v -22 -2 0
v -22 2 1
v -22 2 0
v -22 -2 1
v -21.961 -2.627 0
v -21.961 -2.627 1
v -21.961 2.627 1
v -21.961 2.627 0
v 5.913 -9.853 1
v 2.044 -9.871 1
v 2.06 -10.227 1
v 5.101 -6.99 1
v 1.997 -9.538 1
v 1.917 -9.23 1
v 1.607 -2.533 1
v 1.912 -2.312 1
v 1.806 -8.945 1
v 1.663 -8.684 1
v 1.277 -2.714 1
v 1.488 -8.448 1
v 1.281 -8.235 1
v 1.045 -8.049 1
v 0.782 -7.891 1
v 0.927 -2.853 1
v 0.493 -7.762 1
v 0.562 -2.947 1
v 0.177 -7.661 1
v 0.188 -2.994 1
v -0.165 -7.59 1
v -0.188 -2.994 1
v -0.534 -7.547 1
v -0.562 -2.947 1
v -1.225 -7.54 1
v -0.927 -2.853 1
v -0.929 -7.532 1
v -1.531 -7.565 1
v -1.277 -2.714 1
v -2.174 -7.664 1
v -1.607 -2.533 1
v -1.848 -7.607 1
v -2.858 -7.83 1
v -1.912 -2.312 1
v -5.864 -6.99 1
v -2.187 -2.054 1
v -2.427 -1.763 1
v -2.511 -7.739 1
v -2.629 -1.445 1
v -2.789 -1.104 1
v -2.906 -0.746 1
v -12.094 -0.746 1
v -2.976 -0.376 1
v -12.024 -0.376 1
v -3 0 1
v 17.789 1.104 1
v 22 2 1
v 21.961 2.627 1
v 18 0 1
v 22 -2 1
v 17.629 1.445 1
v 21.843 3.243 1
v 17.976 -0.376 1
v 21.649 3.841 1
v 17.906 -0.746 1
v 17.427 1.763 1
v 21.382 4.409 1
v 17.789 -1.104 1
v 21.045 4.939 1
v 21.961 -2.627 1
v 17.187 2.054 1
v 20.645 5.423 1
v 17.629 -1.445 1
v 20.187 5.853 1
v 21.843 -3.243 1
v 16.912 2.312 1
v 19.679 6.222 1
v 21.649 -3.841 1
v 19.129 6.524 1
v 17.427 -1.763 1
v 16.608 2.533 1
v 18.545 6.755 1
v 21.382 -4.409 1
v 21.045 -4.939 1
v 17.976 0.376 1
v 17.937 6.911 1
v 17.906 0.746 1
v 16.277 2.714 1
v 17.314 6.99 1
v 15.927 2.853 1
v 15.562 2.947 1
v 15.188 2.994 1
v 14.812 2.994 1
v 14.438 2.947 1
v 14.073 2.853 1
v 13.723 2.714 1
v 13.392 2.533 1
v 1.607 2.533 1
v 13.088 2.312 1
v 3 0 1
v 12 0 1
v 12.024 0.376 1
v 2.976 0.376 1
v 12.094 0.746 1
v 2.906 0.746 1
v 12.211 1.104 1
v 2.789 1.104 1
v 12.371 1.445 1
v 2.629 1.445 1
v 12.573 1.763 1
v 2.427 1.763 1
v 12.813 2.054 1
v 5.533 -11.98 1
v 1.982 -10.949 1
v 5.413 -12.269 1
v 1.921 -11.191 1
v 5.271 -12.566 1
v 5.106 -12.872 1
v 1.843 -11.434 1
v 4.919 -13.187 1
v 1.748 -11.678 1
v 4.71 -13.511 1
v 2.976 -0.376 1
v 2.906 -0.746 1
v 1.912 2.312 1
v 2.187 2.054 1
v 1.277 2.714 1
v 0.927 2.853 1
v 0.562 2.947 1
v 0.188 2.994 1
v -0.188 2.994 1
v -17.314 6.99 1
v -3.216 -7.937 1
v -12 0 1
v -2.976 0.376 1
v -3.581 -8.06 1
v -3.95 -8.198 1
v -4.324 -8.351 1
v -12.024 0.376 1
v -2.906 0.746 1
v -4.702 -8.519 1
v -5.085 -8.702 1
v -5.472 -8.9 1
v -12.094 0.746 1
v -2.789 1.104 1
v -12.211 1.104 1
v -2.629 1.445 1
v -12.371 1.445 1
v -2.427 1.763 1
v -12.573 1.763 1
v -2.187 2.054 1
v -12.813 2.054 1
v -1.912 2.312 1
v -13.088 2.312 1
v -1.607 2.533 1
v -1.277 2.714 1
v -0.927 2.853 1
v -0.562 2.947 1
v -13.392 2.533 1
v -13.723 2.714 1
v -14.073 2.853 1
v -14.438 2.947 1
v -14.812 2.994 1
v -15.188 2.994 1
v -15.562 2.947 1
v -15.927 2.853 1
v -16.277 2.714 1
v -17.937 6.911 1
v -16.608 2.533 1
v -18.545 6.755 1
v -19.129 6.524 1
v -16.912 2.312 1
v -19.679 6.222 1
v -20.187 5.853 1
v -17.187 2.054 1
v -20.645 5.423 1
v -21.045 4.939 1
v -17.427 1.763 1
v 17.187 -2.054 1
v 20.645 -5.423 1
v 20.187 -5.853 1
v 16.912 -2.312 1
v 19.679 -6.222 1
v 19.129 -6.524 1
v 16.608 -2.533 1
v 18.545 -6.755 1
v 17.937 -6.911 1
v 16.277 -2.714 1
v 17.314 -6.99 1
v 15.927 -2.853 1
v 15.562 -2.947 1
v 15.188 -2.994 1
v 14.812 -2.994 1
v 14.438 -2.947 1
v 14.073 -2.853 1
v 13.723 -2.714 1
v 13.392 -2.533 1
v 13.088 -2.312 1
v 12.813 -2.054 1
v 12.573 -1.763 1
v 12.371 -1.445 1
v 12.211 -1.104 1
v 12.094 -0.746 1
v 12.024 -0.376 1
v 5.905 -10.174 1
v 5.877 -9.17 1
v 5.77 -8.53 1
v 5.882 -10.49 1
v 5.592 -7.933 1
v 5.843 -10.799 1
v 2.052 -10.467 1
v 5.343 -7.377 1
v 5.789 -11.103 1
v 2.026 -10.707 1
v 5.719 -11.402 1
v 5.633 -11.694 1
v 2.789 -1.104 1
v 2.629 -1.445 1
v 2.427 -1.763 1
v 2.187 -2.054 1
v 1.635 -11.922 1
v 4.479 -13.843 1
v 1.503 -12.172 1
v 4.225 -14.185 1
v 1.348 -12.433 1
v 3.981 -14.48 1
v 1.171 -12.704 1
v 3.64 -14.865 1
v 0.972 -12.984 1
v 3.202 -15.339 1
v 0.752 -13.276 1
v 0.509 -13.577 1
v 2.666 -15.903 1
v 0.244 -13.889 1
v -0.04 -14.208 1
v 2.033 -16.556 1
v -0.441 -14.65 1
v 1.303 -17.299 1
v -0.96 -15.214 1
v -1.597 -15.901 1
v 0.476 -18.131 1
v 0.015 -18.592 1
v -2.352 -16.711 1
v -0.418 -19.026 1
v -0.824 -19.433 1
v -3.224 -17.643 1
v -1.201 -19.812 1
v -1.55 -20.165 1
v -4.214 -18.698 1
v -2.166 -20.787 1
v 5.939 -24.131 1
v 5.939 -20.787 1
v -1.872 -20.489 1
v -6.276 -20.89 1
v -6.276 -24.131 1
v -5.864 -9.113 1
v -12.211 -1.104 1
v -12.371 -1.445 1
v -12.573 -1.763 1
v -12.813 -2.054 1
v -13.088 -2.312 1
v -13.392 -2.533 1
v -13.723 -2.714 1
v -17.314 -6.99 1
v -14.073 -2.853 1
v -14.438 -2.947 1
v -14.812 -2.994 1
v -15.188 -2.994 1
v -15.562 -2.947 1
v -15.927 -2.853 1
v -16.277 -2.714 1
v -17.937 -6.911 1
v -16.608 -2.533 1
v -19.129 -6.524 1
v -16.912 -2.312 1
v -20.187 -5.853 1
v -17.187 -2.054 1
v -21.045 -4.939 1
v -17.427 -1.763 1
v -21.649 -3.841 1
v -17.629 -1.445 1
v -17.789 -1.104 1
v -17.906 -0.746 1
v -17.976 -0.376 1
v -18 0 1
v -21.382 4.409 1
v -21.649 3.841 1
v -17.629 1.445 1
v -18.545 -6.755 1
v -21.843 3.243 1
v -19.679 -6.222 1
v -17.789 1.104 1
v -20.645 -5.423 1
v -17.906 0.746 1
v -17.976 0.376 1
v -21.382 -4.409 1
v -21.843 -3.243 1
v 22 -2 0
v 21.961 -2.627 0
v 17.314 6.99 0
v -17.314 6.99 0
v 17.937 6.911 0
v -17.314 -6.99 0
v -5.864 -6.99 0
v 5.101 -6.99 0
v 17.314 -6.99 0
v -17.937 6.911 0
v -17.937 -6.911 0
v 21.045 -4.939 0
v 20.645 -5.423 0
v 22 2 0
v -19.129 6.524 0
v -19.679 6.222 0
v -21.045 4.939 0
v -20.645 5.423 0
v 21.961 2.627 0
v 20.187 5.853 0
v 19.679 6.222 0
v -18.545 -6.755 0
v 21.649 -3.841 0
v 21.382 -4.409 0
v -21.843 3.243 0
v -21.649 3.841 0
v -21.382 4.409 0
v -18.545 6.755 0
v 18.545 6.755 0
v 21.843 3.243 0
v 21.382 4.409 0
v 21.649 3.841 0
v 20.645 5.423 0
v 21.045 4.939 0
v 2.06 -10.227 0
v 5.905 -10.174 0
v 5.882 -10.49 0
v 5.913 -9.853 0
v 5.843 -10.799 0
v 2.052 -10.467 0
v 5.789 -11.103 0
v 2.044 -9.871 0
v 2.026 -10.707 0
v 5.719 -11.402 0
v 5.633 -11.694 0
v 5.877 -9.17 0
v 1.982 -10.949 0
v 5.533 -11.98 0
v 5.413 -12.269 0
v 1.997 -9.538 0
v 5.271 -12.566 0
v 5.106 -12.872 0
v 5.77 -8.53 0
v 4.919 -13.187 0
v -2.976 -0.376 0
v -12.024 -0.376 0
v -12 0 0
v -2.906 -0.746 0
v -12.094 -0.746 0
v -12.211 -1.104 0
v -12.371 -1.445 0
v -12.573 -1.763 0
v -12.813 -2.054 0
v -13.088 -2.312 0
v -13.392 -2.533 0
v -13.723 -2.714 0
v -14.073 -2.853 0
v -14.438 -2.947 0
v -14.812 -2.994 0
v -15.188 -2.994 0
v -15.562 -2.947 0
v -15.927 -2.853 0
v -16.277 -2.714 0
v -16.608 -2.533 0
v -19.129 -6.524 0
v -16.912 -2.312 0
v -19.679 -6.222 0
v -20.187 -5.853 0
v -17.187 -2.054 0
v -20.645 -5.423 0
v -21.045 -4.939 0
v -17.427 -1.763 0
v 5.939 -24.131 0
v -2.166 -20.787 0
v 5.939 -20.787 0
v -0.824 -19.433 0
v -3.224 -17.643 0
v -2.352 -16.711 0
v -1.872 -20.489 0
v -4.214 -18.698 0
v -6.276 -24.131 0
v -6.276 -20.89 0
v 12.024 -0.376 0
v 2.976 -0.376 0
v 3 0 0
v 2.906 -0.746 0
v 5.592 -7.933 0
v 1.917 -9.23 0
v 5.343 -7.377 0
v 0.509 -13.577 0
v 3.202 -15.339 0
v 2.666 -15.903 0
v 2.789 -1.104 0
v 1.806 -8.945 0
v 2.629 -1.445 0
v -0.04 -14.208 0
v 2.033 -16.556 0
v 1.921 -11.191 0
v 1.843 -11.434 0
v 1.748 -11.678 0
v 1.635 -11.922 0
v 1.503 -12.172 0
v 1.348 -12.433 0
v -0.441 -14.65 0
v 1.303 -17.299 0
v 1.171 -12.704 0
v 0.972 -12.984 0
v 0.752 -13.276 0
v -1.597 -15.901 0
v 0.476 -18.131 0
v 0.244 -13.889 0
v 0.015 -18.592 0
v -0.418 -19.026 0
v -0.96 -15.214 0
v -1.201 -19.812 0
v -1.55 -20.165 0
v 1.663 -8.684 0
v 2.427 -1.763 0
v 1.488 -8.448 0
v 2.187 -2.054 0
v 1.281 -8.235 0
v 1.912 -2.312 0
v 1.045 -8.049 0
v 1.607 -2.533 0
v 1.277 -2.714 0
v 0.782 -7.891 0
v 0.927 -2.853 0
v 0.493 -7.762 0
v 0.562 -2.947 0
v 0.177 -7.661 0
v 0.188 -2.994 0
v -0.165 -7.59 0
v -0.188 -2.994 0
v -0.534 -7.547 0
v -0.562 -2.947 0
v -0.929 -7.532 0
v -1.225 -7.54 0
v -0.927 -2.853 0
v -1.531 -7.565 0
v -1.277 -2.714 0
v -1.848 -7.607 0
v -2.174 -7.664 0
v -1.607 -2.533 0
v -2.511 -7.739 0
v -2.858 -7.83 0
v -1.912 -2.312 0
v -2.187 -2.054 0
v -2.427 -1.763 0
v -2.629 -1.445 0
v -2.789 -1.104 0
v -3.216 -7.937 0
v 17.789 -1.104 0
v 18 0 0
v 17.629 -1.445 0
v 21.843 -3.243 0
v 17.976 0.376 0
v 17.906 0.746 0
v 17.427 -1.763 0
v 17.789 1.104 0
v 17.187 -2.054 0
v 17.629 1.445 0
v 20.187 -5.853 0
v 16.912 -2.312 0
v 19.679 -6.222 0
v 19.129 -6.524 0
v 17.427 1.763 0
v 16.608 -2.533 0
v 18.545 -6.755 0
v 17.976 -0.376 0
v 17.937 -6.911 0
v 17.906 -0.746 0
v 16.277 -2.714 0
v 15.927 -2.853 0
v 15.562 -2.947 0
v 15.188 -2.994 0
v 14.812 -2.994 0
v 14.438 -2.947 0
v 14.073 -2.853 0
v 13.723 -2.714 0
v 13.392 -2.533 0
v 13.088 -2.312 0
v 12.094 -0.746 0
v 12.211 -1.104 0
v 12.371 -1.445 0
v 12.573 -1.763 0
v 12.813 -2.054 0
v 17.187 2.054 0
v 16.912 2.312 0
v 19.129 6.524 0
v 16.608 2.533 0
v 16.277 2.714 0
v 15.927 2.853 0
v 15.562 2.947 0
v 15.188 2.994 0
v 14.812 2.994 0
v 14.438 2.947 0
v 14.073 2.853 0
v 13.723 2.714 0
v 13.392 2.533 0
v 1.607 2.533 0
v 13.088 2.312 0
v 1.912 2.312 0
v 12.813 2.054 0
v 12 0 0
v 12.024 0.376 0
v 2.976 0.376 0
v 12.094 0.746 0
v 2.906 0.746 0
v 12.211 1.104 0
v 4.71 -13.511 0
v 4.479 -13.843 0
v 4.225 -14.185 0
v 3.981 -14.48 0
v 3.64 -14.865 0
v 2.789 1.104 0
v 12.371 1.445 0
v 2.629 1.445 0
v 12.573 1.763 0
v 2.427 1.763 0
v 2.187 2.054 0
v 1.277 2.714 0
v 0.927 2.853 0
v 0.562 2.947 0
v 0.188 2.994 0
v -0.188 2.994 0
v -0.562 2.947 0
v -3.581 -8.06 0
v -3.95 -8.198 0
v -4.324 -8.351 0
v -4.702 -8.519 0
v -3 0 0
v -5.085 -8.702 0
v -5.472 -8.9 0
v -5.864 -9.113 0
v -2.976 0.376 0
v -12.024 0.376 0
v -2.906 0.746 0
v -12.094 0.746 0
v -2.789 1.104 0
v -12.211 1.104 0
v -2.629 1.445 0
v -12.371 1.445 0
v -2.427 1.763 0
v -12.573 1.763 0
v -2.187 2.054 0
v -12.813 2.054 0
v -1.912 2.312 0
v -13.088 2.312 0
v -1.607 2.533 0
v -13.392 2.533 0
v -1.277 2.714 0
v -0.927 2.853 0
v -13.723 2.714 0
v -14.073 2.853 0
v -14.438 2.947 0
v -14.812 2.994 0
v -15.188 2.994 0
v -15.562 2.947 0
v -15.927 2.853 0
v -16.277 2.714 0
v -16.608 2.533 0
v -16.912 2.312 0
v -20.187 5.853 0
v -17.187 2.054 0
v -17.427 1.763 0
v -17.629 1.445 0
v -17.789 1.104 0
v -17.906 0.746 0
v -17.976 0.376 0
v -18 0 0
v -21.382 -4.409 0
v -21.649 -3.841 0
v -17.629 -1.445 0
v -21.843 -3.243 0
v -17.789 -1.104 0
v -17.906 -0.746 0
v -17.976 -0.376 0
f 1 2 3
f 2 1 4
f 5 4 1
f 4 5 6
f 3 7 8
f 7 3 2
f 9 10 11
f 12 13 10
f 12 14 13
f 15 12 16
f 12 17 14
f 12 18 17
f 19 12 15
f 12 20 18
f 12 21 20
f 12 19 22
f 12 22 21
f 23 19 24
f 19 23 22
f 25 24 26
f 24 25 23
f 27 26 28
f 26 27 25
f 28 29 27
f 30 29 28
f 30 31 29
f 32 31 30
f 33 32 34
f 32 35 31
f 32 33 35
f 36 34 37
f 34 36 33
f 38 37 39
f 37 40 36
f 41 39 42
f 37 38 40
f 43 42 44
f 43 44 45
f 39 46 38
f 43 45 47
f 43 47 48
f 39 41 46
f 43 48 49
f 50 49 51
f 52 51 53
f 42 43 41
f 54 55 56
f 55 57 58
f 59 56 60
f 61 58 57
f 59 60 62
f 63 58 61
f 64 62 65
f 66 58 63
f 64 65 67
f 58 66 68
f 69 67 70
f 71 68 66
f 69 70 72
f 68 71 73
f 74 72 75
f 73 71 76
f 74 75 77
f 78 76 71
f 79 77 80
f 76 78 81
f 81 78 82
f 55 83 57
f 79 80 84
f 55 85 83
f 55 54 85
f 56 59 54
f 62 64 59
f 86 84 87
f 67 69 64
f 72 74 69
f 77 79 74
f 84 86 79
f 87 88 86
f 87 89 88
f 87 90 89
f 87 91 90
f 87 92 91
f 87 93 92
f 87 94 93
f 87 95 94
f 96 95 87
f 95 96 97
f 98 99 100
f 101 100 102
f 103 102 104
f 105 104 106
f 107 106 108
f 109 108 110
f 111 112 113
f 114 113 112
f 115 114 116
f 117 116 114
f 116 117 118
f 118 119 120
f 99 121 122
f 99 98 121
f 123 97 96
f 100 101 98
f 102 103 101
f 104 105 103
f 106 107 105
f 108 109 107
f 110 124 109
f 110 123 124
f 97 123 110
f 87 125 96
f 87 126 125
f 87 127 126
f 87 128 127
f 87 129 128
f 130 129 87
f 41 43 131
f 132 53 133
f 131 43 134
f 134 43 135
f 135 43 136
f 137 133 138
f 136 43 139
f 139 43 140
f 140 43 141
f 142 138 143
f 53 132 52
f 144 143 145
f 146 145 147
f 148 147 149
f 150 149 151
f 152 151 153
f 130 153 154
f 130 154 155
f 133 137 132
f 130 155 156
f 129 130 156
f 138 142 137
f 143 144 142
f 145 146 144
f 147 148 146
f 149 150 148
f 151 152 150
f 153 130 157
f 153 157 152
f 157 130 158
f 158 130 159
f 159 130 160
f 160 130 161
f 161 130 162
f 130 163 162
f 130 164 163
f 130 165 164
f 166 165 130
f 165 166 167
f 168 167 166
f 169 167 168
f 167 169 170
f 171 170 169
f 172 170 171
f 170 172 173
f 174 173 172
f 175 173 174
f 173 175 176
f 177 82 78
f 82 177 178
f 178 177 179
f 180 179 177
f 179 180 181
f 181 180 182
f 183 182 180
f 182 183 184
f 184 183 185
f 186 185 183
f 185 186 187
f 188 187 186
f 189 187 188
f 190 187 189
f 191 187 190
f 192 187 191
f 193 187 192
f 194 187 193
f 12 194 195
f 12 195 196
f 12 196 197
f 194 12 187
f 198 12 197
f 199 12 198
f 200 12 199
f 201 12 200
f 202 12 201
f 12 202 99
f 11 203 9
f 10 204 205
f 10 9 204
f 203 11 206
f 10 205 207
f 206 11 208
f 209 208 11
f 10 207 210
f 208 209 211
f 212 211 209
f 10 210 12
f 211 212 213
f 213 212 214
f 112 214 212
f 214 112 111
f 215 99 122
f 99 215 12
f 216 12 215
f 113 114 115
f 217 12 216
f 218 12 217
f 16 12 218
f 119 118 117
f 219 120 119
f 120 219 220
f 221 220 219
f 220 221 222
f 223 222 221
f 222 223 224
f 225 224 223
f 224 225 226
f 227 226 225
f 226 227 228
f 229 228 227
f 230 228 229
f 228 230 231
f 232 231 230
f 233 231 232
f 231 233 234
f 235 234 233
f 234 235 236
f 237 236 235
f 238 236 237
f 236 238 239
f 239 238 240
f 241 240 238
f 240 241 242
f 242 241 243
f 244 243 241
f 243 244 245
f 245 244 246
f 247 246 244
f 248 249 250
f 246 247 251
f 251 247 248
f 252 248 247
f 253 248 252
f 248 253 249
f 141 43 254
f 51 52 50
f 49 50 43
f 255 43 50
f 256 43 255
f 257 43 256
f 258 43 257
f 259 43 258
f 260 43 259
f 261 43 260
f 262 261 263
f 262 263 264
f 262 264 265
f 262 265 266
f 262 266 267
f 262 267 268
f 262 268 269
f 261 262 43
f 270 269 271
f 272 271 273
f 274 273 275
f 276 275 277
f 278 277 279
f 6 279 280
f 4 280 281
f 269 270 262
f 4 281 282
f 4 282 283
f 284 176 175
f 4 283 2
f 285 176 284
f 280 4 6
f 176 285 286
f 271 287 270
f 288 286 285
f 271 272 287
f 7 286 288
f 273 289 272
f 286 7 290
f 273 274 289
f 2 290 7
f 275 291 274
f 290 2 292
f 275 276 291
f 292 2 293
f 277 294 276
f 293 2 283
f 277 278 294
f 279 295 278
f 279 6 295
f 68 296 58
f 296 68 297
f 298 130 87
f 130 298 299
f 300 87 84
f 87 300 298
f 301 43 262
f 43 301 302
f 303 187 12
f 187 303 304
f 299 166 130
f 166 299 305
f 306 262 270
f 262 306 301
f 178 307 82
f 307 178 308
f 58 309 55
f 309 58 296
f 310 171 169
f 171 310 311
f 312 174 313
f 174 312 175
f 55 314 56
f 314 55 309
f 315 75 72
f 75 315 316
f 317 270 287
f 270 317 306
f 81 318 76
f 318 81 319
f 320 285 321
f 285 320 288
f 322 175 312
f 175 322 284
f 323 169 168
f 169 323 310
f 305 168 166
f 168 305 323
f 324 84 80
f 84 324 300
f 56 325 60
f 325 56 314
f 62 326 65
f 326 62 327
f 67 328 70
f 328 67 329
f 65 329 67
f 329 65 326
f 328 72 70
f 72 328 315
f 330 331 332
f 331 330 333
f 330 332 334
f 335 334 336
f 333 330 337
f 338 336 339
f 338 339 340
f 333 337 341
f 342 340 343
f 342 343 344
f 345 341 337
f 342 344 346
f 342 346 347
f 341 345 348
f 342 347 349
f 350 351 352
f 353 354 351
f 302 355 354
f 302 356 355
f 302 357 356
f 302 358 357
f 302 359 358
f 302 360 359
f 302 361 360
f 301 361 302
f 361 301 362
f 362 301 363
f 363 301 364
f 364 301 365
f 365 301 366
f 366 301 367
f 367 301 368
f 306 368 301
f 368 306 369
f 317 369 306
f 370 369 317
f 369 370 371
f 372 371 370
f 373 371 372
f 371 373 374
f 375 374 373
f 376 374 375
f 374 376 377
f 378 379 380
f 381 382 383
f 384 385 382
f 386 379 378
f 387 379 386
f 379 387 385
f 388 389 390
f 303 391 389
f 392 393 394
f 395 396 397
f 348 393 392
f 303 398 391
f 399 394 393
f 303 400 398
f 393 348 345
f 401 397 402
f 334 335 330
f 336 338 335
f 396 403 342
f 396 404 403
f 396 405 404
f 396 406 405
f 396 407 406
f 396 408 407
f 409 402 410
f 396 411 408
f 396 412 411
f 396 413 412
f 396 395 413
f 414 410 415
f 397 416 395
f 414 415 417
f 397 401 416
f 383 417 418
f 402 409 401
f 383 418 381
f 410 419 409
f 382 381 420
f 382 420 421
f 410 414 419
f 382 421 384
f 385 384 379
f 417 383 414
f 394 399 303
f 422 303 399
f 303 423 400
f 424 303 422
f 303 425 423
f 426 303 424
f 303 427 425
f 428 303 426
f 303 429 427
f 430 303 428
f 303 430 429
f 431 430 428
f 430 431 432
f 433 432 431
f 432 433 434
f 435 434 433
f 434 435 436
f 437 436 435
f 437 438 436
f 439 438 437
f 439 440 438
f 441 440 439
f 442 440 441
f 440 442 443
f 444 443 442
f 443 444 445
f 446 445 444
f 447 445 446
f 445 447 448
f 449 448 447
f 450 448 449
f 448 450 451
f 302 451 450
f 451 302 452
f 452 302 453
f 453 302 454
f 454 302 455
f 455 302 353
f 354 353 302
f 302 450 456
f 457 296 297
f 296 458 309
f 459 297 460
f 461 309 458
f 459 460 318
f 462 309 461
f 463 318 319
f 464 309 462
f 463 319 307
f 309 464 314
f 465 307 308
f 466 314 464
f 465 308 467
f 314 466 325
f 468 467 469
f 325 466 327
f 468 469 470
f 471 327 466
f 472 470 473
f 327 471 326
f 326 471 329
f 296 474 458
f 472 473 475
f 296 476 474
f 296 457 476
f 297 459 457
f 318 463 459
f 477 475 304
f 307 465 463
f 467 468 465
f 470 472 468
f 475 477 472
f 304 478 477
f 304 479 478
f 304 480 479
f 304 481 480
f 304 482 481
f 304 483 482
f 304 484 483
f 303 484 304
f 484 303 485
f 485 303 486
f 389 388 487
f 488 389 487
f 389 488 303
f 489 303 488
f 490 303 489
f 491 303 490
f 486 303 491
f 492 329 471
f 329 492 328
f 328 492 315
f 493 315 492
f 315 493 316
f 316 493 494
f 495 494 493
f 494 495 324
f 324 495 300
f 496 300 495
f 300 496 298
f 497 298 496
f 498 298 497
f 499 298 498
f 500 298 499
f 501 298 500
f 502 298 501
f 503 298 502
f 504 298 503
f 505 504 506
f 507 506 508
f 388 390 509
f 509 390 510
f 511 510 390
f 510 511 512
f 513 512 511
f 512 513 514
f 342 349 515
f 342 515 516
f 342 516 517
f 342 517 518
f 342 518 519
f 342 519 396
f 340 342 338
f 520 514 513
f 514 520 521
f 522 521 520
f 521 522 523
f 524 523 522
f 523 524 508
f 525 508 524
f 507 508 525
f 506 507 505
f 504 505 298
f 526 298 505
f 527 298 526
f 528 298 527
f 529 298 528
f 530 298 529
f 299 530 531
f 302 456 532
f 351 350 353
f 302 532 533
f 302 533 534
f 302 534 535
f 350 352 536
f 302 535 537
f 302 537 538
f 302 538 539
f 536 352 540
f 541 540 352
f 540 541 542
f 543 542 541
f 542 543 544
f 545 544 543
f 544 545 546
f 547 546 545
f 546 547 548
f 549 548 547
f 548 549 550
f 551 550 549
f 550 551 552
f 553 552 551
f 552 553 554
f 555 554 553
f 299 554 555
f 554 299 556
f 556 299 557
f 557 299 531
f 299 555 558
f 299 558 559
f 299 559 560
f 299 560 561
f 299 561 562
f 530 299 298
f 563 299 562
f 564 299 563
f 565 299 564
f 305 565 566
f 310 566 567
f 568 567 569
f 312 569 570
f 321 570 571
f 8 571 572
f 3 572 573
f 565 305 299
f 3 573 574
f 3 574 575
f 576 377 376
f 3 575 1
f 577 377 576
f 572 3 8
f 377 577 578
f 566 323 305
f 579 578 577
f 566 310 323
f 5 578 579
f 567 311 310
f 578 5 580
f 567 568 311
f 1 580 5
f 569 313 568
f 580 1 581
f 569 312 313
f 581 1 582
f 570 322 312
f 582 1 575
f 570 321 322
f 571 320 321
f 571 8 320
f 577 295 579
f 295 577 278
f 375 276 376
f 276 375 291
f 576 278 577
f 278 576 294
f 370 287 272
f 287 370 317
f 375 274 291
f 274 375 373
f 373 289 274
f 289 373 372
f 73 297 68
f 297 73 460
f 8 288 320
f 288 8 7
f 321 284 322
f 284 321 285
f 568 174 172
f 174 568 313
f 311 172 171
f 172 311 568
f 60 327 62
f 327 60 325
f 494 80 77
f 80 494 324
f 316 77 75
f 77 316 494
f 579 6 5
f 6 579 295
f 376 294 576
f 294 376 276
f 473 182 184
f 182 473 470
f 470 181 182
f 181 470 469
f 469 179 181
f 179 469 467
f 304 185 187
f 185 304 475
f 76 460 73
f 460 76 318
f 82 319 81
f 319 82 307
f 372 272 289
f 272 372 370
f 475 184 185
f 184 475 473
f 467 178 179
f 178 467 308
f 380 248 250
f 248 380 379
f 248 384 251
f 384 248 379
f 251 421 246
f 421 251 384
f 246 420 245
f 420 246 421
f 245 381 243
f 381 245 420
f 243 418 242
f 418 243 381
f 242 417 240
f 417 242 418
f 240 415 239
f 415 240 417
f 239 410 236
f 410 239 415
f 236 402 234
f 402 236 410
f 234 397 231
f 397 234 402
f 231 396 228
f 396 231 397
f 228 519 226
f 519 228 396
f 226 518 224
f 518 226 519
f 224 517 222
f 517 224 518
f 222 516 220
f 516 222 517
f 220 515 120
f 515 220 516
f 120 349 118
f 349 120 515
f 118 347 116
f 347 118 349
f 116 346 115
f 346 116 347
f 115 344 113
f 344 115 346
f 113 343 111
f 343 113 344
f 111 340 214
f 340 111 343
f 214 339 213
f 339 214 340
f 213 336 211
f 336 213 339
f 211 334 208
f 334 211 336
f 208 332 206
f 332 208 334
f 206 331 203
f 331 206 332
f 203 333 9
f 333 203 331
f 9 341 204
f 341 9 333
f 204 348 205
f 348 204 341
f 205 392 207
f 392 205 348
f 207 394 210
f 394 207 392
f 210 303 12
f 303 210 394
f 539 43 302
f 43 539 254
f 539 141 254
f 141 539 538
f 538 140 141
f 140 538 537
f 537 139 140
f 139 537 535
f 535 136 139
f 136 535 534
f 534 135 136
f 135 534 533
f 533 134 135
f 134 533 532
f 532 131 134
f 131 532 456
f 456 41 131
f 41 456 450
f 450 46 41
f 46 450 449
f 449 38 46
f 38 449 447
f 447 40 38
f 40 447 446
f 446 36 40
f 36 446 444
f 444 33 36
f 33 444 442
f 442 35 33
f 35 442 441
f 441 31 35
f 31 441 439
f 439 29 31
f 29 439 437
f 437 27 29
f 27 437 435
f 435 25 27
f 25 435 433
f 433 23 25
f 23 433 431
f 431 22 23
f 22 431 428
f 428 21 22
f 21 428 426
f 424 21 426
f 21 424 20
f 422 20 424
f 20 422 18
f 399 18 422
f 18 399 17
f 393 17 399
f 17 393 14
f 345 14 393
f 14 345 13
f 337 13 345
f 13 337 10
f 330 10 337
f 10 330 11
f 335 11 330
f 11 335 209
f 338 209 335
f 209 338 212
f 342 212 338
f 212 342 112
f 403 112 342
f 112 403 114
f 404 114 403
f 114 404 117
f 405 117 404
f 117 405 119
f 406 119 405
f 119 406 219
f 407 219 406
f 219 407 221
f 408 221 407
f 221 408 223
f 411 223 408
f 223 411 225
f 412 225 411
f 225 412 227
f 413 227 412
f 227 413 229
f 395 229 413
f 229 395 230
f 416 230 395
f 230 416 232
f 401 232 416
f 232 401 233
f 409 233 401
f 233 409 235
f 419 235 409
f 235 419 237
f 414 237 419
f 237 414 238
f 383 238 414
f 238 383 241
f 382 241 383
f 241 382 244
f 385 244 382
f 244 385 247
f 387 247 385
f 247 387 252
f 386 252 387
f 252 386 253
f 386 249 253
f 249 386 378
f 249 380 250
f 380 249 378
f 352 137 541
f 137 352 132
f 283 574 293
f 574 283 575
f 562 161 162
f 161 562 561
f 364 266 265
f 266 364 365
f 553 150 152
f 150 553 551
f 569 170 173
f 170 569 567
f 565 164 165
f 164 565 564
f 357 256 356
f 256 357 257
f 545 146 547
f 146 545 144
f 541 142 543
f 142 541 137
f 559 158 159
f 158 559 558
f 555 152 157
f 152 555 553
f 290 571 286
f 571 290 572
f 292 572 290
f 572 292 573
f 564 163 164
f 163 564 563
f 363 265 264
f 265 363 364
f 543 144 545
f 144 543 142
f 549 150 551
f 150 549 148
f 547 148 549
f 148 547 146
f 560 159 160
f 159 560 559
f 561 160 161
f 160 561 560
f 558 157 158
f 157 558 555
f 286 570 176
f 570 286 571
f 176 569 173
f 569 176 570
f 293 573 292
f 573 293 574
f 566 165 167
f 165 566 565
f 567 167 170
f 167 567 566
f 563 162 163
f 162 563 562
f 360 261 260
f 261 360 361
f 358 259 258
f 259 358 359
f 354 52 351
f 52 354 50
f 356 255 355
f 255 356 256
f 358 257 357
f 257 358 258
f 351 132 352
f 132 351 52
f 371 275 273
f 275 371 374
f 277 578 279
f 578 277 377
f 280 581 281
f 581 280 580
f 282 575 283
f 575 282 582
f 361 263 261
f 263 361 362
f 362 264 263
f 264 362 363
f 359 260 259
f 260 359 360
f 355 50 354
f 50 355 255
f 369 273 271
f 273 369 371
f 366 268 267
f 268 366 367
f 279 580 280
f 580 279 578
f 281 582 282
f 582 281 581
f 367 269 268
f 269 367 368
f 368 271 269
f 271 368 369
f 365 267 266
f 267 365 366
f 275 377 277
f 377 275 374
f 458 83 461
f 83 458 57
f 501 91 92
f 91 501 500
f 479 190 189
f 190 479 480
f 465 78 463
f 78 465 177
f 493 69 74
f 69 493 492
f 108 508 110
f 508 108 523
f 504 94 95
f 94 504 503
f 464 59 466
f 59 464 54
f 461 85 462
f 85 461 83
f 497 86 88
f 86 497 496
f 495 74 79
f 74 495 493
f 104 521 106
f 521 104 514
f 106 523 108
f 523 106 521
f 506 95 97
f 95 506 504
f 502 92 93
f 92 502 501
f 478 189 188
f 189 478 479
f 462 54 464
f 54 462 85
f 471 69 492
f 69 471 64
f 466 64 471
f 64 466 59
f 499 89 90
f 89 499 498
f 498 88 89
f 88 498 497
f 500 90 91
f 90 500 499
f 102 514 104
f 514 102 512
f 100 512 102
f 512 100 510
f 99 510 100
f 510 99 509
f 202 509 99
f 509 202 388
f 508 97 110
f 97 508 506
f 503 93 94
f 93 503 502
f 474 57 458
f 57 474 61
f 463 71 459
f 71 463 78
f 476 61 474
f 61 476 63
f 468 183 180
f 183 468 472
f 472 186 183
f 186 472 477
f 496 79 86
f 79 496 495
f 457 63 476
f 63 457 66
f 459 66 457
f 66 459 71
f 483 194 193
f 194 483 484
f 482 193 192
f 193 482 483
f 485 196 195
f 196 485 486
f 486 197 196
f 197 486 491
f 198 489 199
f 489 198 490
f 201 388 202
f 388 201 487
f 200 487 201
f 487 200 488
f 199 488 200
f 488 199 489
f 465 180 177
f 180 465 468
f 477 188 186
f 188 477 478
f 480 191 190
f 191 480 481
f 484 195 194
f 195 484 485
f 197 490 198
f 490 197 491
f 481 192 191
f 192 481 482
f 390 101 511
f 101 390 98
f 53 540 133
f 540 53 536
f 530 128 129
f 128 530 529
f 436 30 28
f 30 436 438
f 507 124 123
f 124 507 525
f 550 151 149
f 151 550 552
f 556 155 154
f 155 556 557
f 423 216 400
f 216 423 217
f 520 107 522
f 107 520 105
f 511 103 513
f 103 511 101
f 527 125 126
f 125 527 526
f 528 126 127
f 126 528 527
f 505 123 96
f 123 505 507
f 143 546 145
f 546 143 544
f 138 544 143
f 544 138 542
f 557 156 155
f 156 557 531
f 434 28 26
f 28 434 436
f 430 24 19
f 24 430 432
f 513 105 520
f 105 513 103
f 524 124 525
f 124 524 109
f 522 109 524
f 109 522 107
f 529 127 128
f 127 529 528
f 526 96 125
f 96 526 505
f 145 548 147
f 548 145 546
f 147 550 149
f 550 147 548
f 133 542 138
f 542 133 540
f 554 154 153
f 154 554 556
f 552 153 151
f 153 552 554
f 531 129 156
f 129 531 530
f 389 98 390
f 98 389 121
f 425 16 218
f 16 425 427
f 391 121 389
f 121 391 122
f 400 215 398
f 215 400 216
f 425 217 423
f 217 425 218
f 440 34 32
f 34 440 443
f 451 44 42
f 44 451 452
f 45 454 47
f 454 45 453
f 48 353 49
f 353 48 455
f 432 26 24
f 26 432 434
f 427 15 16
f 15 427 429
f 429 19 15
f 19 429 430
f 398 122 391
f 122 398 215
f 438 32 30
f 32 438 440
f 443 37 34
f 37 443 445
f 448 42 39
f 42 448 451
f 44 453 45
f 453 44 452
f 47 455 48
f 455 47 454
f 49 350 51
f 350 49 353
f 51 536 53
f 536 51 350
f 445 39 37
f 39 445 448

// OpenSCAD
$fn = 50;


difference() {
	union() {
		translate(v = [0, 0, 0]) {
			rotate(a = [0, 0, 0]) {
				hull() {
					translate(v = [-17.0000000000, 2.0000000000, 0]) {
						rotate(a = [0, 0, 0]) {
							translate(v = [0, 0, 0]) {
								rotate(a = [0, 0, 0]) {
									cylinder(h = 1, r = 5);
								}
							}
						}
					}
					translate(v = [17.0000000000, 2.0000000000, 0]) {
						rotate(a = [0, 0, 0]) {
							translate(v = [0, 0, 0]) {
								rotate(a = [0, 0, 0]) {
									cylinder(h = 1, r = 5);
								}
							}
						}
					}
					translate(v = [-17.0000000000, -2.0000000000, 0]) {
						rotate(a = [0, 0, 0]) {
							translate(v = [0, 0, 0]) {
								rotate(a = [0, 0, 0]) {
									cylinder(h = 1, r = 5);
								}
							}
						}
					}
					translate(v = [17.0000000000, -2.0000000000, 0]) {
						rotate(a = [0, 0, 0]) {
							translate(v = [0, 0, 0]) {
								rotate(a = [0, 0, 0]) {
									cylinder(h = 1, r = 5);
								}
							}
						}
					}
				}
			}
		}
		translate(v = [0, -5, 0]) {
			rotate(a = [0, 0, 0]) {
				linear_extrude(height = 1) {
					text(font = "DejaVu Sans Mono:style=Bold", halign = "center", size = 19.0000000000, text = "2", valign = "top");
				}
			}
		}
	}
	union() {
		translate(v = [-15.0000000000, 0.0000000000, -125.0000000000]) {
			rotate(a = [0, 0, 0]) {
				cylinder(h = 250, r = 3.0000000000);
			}
		}
		translate(v = [15.0000000000, 0.0000000000, -125.0000000000]) {
			rotate(a = [0, 0, 0]) {
				cylinder(h = 250, r = 3.0000000000);
			}
		}
		translate(v = [15.0000000000, 0.0000000000, -125.0000000000]) {
			rotate(a = [0, 0, 0]) {
				cylinder(h = 250, r = 3.0000000000);
			}
		}
		translate(v = [0, 0, -125.0000000000]) {
			rotate(a = [0, 0, 0]) {
				cylinder(h = 250, r = 3.0000000000);
			}
		}
	}
}
